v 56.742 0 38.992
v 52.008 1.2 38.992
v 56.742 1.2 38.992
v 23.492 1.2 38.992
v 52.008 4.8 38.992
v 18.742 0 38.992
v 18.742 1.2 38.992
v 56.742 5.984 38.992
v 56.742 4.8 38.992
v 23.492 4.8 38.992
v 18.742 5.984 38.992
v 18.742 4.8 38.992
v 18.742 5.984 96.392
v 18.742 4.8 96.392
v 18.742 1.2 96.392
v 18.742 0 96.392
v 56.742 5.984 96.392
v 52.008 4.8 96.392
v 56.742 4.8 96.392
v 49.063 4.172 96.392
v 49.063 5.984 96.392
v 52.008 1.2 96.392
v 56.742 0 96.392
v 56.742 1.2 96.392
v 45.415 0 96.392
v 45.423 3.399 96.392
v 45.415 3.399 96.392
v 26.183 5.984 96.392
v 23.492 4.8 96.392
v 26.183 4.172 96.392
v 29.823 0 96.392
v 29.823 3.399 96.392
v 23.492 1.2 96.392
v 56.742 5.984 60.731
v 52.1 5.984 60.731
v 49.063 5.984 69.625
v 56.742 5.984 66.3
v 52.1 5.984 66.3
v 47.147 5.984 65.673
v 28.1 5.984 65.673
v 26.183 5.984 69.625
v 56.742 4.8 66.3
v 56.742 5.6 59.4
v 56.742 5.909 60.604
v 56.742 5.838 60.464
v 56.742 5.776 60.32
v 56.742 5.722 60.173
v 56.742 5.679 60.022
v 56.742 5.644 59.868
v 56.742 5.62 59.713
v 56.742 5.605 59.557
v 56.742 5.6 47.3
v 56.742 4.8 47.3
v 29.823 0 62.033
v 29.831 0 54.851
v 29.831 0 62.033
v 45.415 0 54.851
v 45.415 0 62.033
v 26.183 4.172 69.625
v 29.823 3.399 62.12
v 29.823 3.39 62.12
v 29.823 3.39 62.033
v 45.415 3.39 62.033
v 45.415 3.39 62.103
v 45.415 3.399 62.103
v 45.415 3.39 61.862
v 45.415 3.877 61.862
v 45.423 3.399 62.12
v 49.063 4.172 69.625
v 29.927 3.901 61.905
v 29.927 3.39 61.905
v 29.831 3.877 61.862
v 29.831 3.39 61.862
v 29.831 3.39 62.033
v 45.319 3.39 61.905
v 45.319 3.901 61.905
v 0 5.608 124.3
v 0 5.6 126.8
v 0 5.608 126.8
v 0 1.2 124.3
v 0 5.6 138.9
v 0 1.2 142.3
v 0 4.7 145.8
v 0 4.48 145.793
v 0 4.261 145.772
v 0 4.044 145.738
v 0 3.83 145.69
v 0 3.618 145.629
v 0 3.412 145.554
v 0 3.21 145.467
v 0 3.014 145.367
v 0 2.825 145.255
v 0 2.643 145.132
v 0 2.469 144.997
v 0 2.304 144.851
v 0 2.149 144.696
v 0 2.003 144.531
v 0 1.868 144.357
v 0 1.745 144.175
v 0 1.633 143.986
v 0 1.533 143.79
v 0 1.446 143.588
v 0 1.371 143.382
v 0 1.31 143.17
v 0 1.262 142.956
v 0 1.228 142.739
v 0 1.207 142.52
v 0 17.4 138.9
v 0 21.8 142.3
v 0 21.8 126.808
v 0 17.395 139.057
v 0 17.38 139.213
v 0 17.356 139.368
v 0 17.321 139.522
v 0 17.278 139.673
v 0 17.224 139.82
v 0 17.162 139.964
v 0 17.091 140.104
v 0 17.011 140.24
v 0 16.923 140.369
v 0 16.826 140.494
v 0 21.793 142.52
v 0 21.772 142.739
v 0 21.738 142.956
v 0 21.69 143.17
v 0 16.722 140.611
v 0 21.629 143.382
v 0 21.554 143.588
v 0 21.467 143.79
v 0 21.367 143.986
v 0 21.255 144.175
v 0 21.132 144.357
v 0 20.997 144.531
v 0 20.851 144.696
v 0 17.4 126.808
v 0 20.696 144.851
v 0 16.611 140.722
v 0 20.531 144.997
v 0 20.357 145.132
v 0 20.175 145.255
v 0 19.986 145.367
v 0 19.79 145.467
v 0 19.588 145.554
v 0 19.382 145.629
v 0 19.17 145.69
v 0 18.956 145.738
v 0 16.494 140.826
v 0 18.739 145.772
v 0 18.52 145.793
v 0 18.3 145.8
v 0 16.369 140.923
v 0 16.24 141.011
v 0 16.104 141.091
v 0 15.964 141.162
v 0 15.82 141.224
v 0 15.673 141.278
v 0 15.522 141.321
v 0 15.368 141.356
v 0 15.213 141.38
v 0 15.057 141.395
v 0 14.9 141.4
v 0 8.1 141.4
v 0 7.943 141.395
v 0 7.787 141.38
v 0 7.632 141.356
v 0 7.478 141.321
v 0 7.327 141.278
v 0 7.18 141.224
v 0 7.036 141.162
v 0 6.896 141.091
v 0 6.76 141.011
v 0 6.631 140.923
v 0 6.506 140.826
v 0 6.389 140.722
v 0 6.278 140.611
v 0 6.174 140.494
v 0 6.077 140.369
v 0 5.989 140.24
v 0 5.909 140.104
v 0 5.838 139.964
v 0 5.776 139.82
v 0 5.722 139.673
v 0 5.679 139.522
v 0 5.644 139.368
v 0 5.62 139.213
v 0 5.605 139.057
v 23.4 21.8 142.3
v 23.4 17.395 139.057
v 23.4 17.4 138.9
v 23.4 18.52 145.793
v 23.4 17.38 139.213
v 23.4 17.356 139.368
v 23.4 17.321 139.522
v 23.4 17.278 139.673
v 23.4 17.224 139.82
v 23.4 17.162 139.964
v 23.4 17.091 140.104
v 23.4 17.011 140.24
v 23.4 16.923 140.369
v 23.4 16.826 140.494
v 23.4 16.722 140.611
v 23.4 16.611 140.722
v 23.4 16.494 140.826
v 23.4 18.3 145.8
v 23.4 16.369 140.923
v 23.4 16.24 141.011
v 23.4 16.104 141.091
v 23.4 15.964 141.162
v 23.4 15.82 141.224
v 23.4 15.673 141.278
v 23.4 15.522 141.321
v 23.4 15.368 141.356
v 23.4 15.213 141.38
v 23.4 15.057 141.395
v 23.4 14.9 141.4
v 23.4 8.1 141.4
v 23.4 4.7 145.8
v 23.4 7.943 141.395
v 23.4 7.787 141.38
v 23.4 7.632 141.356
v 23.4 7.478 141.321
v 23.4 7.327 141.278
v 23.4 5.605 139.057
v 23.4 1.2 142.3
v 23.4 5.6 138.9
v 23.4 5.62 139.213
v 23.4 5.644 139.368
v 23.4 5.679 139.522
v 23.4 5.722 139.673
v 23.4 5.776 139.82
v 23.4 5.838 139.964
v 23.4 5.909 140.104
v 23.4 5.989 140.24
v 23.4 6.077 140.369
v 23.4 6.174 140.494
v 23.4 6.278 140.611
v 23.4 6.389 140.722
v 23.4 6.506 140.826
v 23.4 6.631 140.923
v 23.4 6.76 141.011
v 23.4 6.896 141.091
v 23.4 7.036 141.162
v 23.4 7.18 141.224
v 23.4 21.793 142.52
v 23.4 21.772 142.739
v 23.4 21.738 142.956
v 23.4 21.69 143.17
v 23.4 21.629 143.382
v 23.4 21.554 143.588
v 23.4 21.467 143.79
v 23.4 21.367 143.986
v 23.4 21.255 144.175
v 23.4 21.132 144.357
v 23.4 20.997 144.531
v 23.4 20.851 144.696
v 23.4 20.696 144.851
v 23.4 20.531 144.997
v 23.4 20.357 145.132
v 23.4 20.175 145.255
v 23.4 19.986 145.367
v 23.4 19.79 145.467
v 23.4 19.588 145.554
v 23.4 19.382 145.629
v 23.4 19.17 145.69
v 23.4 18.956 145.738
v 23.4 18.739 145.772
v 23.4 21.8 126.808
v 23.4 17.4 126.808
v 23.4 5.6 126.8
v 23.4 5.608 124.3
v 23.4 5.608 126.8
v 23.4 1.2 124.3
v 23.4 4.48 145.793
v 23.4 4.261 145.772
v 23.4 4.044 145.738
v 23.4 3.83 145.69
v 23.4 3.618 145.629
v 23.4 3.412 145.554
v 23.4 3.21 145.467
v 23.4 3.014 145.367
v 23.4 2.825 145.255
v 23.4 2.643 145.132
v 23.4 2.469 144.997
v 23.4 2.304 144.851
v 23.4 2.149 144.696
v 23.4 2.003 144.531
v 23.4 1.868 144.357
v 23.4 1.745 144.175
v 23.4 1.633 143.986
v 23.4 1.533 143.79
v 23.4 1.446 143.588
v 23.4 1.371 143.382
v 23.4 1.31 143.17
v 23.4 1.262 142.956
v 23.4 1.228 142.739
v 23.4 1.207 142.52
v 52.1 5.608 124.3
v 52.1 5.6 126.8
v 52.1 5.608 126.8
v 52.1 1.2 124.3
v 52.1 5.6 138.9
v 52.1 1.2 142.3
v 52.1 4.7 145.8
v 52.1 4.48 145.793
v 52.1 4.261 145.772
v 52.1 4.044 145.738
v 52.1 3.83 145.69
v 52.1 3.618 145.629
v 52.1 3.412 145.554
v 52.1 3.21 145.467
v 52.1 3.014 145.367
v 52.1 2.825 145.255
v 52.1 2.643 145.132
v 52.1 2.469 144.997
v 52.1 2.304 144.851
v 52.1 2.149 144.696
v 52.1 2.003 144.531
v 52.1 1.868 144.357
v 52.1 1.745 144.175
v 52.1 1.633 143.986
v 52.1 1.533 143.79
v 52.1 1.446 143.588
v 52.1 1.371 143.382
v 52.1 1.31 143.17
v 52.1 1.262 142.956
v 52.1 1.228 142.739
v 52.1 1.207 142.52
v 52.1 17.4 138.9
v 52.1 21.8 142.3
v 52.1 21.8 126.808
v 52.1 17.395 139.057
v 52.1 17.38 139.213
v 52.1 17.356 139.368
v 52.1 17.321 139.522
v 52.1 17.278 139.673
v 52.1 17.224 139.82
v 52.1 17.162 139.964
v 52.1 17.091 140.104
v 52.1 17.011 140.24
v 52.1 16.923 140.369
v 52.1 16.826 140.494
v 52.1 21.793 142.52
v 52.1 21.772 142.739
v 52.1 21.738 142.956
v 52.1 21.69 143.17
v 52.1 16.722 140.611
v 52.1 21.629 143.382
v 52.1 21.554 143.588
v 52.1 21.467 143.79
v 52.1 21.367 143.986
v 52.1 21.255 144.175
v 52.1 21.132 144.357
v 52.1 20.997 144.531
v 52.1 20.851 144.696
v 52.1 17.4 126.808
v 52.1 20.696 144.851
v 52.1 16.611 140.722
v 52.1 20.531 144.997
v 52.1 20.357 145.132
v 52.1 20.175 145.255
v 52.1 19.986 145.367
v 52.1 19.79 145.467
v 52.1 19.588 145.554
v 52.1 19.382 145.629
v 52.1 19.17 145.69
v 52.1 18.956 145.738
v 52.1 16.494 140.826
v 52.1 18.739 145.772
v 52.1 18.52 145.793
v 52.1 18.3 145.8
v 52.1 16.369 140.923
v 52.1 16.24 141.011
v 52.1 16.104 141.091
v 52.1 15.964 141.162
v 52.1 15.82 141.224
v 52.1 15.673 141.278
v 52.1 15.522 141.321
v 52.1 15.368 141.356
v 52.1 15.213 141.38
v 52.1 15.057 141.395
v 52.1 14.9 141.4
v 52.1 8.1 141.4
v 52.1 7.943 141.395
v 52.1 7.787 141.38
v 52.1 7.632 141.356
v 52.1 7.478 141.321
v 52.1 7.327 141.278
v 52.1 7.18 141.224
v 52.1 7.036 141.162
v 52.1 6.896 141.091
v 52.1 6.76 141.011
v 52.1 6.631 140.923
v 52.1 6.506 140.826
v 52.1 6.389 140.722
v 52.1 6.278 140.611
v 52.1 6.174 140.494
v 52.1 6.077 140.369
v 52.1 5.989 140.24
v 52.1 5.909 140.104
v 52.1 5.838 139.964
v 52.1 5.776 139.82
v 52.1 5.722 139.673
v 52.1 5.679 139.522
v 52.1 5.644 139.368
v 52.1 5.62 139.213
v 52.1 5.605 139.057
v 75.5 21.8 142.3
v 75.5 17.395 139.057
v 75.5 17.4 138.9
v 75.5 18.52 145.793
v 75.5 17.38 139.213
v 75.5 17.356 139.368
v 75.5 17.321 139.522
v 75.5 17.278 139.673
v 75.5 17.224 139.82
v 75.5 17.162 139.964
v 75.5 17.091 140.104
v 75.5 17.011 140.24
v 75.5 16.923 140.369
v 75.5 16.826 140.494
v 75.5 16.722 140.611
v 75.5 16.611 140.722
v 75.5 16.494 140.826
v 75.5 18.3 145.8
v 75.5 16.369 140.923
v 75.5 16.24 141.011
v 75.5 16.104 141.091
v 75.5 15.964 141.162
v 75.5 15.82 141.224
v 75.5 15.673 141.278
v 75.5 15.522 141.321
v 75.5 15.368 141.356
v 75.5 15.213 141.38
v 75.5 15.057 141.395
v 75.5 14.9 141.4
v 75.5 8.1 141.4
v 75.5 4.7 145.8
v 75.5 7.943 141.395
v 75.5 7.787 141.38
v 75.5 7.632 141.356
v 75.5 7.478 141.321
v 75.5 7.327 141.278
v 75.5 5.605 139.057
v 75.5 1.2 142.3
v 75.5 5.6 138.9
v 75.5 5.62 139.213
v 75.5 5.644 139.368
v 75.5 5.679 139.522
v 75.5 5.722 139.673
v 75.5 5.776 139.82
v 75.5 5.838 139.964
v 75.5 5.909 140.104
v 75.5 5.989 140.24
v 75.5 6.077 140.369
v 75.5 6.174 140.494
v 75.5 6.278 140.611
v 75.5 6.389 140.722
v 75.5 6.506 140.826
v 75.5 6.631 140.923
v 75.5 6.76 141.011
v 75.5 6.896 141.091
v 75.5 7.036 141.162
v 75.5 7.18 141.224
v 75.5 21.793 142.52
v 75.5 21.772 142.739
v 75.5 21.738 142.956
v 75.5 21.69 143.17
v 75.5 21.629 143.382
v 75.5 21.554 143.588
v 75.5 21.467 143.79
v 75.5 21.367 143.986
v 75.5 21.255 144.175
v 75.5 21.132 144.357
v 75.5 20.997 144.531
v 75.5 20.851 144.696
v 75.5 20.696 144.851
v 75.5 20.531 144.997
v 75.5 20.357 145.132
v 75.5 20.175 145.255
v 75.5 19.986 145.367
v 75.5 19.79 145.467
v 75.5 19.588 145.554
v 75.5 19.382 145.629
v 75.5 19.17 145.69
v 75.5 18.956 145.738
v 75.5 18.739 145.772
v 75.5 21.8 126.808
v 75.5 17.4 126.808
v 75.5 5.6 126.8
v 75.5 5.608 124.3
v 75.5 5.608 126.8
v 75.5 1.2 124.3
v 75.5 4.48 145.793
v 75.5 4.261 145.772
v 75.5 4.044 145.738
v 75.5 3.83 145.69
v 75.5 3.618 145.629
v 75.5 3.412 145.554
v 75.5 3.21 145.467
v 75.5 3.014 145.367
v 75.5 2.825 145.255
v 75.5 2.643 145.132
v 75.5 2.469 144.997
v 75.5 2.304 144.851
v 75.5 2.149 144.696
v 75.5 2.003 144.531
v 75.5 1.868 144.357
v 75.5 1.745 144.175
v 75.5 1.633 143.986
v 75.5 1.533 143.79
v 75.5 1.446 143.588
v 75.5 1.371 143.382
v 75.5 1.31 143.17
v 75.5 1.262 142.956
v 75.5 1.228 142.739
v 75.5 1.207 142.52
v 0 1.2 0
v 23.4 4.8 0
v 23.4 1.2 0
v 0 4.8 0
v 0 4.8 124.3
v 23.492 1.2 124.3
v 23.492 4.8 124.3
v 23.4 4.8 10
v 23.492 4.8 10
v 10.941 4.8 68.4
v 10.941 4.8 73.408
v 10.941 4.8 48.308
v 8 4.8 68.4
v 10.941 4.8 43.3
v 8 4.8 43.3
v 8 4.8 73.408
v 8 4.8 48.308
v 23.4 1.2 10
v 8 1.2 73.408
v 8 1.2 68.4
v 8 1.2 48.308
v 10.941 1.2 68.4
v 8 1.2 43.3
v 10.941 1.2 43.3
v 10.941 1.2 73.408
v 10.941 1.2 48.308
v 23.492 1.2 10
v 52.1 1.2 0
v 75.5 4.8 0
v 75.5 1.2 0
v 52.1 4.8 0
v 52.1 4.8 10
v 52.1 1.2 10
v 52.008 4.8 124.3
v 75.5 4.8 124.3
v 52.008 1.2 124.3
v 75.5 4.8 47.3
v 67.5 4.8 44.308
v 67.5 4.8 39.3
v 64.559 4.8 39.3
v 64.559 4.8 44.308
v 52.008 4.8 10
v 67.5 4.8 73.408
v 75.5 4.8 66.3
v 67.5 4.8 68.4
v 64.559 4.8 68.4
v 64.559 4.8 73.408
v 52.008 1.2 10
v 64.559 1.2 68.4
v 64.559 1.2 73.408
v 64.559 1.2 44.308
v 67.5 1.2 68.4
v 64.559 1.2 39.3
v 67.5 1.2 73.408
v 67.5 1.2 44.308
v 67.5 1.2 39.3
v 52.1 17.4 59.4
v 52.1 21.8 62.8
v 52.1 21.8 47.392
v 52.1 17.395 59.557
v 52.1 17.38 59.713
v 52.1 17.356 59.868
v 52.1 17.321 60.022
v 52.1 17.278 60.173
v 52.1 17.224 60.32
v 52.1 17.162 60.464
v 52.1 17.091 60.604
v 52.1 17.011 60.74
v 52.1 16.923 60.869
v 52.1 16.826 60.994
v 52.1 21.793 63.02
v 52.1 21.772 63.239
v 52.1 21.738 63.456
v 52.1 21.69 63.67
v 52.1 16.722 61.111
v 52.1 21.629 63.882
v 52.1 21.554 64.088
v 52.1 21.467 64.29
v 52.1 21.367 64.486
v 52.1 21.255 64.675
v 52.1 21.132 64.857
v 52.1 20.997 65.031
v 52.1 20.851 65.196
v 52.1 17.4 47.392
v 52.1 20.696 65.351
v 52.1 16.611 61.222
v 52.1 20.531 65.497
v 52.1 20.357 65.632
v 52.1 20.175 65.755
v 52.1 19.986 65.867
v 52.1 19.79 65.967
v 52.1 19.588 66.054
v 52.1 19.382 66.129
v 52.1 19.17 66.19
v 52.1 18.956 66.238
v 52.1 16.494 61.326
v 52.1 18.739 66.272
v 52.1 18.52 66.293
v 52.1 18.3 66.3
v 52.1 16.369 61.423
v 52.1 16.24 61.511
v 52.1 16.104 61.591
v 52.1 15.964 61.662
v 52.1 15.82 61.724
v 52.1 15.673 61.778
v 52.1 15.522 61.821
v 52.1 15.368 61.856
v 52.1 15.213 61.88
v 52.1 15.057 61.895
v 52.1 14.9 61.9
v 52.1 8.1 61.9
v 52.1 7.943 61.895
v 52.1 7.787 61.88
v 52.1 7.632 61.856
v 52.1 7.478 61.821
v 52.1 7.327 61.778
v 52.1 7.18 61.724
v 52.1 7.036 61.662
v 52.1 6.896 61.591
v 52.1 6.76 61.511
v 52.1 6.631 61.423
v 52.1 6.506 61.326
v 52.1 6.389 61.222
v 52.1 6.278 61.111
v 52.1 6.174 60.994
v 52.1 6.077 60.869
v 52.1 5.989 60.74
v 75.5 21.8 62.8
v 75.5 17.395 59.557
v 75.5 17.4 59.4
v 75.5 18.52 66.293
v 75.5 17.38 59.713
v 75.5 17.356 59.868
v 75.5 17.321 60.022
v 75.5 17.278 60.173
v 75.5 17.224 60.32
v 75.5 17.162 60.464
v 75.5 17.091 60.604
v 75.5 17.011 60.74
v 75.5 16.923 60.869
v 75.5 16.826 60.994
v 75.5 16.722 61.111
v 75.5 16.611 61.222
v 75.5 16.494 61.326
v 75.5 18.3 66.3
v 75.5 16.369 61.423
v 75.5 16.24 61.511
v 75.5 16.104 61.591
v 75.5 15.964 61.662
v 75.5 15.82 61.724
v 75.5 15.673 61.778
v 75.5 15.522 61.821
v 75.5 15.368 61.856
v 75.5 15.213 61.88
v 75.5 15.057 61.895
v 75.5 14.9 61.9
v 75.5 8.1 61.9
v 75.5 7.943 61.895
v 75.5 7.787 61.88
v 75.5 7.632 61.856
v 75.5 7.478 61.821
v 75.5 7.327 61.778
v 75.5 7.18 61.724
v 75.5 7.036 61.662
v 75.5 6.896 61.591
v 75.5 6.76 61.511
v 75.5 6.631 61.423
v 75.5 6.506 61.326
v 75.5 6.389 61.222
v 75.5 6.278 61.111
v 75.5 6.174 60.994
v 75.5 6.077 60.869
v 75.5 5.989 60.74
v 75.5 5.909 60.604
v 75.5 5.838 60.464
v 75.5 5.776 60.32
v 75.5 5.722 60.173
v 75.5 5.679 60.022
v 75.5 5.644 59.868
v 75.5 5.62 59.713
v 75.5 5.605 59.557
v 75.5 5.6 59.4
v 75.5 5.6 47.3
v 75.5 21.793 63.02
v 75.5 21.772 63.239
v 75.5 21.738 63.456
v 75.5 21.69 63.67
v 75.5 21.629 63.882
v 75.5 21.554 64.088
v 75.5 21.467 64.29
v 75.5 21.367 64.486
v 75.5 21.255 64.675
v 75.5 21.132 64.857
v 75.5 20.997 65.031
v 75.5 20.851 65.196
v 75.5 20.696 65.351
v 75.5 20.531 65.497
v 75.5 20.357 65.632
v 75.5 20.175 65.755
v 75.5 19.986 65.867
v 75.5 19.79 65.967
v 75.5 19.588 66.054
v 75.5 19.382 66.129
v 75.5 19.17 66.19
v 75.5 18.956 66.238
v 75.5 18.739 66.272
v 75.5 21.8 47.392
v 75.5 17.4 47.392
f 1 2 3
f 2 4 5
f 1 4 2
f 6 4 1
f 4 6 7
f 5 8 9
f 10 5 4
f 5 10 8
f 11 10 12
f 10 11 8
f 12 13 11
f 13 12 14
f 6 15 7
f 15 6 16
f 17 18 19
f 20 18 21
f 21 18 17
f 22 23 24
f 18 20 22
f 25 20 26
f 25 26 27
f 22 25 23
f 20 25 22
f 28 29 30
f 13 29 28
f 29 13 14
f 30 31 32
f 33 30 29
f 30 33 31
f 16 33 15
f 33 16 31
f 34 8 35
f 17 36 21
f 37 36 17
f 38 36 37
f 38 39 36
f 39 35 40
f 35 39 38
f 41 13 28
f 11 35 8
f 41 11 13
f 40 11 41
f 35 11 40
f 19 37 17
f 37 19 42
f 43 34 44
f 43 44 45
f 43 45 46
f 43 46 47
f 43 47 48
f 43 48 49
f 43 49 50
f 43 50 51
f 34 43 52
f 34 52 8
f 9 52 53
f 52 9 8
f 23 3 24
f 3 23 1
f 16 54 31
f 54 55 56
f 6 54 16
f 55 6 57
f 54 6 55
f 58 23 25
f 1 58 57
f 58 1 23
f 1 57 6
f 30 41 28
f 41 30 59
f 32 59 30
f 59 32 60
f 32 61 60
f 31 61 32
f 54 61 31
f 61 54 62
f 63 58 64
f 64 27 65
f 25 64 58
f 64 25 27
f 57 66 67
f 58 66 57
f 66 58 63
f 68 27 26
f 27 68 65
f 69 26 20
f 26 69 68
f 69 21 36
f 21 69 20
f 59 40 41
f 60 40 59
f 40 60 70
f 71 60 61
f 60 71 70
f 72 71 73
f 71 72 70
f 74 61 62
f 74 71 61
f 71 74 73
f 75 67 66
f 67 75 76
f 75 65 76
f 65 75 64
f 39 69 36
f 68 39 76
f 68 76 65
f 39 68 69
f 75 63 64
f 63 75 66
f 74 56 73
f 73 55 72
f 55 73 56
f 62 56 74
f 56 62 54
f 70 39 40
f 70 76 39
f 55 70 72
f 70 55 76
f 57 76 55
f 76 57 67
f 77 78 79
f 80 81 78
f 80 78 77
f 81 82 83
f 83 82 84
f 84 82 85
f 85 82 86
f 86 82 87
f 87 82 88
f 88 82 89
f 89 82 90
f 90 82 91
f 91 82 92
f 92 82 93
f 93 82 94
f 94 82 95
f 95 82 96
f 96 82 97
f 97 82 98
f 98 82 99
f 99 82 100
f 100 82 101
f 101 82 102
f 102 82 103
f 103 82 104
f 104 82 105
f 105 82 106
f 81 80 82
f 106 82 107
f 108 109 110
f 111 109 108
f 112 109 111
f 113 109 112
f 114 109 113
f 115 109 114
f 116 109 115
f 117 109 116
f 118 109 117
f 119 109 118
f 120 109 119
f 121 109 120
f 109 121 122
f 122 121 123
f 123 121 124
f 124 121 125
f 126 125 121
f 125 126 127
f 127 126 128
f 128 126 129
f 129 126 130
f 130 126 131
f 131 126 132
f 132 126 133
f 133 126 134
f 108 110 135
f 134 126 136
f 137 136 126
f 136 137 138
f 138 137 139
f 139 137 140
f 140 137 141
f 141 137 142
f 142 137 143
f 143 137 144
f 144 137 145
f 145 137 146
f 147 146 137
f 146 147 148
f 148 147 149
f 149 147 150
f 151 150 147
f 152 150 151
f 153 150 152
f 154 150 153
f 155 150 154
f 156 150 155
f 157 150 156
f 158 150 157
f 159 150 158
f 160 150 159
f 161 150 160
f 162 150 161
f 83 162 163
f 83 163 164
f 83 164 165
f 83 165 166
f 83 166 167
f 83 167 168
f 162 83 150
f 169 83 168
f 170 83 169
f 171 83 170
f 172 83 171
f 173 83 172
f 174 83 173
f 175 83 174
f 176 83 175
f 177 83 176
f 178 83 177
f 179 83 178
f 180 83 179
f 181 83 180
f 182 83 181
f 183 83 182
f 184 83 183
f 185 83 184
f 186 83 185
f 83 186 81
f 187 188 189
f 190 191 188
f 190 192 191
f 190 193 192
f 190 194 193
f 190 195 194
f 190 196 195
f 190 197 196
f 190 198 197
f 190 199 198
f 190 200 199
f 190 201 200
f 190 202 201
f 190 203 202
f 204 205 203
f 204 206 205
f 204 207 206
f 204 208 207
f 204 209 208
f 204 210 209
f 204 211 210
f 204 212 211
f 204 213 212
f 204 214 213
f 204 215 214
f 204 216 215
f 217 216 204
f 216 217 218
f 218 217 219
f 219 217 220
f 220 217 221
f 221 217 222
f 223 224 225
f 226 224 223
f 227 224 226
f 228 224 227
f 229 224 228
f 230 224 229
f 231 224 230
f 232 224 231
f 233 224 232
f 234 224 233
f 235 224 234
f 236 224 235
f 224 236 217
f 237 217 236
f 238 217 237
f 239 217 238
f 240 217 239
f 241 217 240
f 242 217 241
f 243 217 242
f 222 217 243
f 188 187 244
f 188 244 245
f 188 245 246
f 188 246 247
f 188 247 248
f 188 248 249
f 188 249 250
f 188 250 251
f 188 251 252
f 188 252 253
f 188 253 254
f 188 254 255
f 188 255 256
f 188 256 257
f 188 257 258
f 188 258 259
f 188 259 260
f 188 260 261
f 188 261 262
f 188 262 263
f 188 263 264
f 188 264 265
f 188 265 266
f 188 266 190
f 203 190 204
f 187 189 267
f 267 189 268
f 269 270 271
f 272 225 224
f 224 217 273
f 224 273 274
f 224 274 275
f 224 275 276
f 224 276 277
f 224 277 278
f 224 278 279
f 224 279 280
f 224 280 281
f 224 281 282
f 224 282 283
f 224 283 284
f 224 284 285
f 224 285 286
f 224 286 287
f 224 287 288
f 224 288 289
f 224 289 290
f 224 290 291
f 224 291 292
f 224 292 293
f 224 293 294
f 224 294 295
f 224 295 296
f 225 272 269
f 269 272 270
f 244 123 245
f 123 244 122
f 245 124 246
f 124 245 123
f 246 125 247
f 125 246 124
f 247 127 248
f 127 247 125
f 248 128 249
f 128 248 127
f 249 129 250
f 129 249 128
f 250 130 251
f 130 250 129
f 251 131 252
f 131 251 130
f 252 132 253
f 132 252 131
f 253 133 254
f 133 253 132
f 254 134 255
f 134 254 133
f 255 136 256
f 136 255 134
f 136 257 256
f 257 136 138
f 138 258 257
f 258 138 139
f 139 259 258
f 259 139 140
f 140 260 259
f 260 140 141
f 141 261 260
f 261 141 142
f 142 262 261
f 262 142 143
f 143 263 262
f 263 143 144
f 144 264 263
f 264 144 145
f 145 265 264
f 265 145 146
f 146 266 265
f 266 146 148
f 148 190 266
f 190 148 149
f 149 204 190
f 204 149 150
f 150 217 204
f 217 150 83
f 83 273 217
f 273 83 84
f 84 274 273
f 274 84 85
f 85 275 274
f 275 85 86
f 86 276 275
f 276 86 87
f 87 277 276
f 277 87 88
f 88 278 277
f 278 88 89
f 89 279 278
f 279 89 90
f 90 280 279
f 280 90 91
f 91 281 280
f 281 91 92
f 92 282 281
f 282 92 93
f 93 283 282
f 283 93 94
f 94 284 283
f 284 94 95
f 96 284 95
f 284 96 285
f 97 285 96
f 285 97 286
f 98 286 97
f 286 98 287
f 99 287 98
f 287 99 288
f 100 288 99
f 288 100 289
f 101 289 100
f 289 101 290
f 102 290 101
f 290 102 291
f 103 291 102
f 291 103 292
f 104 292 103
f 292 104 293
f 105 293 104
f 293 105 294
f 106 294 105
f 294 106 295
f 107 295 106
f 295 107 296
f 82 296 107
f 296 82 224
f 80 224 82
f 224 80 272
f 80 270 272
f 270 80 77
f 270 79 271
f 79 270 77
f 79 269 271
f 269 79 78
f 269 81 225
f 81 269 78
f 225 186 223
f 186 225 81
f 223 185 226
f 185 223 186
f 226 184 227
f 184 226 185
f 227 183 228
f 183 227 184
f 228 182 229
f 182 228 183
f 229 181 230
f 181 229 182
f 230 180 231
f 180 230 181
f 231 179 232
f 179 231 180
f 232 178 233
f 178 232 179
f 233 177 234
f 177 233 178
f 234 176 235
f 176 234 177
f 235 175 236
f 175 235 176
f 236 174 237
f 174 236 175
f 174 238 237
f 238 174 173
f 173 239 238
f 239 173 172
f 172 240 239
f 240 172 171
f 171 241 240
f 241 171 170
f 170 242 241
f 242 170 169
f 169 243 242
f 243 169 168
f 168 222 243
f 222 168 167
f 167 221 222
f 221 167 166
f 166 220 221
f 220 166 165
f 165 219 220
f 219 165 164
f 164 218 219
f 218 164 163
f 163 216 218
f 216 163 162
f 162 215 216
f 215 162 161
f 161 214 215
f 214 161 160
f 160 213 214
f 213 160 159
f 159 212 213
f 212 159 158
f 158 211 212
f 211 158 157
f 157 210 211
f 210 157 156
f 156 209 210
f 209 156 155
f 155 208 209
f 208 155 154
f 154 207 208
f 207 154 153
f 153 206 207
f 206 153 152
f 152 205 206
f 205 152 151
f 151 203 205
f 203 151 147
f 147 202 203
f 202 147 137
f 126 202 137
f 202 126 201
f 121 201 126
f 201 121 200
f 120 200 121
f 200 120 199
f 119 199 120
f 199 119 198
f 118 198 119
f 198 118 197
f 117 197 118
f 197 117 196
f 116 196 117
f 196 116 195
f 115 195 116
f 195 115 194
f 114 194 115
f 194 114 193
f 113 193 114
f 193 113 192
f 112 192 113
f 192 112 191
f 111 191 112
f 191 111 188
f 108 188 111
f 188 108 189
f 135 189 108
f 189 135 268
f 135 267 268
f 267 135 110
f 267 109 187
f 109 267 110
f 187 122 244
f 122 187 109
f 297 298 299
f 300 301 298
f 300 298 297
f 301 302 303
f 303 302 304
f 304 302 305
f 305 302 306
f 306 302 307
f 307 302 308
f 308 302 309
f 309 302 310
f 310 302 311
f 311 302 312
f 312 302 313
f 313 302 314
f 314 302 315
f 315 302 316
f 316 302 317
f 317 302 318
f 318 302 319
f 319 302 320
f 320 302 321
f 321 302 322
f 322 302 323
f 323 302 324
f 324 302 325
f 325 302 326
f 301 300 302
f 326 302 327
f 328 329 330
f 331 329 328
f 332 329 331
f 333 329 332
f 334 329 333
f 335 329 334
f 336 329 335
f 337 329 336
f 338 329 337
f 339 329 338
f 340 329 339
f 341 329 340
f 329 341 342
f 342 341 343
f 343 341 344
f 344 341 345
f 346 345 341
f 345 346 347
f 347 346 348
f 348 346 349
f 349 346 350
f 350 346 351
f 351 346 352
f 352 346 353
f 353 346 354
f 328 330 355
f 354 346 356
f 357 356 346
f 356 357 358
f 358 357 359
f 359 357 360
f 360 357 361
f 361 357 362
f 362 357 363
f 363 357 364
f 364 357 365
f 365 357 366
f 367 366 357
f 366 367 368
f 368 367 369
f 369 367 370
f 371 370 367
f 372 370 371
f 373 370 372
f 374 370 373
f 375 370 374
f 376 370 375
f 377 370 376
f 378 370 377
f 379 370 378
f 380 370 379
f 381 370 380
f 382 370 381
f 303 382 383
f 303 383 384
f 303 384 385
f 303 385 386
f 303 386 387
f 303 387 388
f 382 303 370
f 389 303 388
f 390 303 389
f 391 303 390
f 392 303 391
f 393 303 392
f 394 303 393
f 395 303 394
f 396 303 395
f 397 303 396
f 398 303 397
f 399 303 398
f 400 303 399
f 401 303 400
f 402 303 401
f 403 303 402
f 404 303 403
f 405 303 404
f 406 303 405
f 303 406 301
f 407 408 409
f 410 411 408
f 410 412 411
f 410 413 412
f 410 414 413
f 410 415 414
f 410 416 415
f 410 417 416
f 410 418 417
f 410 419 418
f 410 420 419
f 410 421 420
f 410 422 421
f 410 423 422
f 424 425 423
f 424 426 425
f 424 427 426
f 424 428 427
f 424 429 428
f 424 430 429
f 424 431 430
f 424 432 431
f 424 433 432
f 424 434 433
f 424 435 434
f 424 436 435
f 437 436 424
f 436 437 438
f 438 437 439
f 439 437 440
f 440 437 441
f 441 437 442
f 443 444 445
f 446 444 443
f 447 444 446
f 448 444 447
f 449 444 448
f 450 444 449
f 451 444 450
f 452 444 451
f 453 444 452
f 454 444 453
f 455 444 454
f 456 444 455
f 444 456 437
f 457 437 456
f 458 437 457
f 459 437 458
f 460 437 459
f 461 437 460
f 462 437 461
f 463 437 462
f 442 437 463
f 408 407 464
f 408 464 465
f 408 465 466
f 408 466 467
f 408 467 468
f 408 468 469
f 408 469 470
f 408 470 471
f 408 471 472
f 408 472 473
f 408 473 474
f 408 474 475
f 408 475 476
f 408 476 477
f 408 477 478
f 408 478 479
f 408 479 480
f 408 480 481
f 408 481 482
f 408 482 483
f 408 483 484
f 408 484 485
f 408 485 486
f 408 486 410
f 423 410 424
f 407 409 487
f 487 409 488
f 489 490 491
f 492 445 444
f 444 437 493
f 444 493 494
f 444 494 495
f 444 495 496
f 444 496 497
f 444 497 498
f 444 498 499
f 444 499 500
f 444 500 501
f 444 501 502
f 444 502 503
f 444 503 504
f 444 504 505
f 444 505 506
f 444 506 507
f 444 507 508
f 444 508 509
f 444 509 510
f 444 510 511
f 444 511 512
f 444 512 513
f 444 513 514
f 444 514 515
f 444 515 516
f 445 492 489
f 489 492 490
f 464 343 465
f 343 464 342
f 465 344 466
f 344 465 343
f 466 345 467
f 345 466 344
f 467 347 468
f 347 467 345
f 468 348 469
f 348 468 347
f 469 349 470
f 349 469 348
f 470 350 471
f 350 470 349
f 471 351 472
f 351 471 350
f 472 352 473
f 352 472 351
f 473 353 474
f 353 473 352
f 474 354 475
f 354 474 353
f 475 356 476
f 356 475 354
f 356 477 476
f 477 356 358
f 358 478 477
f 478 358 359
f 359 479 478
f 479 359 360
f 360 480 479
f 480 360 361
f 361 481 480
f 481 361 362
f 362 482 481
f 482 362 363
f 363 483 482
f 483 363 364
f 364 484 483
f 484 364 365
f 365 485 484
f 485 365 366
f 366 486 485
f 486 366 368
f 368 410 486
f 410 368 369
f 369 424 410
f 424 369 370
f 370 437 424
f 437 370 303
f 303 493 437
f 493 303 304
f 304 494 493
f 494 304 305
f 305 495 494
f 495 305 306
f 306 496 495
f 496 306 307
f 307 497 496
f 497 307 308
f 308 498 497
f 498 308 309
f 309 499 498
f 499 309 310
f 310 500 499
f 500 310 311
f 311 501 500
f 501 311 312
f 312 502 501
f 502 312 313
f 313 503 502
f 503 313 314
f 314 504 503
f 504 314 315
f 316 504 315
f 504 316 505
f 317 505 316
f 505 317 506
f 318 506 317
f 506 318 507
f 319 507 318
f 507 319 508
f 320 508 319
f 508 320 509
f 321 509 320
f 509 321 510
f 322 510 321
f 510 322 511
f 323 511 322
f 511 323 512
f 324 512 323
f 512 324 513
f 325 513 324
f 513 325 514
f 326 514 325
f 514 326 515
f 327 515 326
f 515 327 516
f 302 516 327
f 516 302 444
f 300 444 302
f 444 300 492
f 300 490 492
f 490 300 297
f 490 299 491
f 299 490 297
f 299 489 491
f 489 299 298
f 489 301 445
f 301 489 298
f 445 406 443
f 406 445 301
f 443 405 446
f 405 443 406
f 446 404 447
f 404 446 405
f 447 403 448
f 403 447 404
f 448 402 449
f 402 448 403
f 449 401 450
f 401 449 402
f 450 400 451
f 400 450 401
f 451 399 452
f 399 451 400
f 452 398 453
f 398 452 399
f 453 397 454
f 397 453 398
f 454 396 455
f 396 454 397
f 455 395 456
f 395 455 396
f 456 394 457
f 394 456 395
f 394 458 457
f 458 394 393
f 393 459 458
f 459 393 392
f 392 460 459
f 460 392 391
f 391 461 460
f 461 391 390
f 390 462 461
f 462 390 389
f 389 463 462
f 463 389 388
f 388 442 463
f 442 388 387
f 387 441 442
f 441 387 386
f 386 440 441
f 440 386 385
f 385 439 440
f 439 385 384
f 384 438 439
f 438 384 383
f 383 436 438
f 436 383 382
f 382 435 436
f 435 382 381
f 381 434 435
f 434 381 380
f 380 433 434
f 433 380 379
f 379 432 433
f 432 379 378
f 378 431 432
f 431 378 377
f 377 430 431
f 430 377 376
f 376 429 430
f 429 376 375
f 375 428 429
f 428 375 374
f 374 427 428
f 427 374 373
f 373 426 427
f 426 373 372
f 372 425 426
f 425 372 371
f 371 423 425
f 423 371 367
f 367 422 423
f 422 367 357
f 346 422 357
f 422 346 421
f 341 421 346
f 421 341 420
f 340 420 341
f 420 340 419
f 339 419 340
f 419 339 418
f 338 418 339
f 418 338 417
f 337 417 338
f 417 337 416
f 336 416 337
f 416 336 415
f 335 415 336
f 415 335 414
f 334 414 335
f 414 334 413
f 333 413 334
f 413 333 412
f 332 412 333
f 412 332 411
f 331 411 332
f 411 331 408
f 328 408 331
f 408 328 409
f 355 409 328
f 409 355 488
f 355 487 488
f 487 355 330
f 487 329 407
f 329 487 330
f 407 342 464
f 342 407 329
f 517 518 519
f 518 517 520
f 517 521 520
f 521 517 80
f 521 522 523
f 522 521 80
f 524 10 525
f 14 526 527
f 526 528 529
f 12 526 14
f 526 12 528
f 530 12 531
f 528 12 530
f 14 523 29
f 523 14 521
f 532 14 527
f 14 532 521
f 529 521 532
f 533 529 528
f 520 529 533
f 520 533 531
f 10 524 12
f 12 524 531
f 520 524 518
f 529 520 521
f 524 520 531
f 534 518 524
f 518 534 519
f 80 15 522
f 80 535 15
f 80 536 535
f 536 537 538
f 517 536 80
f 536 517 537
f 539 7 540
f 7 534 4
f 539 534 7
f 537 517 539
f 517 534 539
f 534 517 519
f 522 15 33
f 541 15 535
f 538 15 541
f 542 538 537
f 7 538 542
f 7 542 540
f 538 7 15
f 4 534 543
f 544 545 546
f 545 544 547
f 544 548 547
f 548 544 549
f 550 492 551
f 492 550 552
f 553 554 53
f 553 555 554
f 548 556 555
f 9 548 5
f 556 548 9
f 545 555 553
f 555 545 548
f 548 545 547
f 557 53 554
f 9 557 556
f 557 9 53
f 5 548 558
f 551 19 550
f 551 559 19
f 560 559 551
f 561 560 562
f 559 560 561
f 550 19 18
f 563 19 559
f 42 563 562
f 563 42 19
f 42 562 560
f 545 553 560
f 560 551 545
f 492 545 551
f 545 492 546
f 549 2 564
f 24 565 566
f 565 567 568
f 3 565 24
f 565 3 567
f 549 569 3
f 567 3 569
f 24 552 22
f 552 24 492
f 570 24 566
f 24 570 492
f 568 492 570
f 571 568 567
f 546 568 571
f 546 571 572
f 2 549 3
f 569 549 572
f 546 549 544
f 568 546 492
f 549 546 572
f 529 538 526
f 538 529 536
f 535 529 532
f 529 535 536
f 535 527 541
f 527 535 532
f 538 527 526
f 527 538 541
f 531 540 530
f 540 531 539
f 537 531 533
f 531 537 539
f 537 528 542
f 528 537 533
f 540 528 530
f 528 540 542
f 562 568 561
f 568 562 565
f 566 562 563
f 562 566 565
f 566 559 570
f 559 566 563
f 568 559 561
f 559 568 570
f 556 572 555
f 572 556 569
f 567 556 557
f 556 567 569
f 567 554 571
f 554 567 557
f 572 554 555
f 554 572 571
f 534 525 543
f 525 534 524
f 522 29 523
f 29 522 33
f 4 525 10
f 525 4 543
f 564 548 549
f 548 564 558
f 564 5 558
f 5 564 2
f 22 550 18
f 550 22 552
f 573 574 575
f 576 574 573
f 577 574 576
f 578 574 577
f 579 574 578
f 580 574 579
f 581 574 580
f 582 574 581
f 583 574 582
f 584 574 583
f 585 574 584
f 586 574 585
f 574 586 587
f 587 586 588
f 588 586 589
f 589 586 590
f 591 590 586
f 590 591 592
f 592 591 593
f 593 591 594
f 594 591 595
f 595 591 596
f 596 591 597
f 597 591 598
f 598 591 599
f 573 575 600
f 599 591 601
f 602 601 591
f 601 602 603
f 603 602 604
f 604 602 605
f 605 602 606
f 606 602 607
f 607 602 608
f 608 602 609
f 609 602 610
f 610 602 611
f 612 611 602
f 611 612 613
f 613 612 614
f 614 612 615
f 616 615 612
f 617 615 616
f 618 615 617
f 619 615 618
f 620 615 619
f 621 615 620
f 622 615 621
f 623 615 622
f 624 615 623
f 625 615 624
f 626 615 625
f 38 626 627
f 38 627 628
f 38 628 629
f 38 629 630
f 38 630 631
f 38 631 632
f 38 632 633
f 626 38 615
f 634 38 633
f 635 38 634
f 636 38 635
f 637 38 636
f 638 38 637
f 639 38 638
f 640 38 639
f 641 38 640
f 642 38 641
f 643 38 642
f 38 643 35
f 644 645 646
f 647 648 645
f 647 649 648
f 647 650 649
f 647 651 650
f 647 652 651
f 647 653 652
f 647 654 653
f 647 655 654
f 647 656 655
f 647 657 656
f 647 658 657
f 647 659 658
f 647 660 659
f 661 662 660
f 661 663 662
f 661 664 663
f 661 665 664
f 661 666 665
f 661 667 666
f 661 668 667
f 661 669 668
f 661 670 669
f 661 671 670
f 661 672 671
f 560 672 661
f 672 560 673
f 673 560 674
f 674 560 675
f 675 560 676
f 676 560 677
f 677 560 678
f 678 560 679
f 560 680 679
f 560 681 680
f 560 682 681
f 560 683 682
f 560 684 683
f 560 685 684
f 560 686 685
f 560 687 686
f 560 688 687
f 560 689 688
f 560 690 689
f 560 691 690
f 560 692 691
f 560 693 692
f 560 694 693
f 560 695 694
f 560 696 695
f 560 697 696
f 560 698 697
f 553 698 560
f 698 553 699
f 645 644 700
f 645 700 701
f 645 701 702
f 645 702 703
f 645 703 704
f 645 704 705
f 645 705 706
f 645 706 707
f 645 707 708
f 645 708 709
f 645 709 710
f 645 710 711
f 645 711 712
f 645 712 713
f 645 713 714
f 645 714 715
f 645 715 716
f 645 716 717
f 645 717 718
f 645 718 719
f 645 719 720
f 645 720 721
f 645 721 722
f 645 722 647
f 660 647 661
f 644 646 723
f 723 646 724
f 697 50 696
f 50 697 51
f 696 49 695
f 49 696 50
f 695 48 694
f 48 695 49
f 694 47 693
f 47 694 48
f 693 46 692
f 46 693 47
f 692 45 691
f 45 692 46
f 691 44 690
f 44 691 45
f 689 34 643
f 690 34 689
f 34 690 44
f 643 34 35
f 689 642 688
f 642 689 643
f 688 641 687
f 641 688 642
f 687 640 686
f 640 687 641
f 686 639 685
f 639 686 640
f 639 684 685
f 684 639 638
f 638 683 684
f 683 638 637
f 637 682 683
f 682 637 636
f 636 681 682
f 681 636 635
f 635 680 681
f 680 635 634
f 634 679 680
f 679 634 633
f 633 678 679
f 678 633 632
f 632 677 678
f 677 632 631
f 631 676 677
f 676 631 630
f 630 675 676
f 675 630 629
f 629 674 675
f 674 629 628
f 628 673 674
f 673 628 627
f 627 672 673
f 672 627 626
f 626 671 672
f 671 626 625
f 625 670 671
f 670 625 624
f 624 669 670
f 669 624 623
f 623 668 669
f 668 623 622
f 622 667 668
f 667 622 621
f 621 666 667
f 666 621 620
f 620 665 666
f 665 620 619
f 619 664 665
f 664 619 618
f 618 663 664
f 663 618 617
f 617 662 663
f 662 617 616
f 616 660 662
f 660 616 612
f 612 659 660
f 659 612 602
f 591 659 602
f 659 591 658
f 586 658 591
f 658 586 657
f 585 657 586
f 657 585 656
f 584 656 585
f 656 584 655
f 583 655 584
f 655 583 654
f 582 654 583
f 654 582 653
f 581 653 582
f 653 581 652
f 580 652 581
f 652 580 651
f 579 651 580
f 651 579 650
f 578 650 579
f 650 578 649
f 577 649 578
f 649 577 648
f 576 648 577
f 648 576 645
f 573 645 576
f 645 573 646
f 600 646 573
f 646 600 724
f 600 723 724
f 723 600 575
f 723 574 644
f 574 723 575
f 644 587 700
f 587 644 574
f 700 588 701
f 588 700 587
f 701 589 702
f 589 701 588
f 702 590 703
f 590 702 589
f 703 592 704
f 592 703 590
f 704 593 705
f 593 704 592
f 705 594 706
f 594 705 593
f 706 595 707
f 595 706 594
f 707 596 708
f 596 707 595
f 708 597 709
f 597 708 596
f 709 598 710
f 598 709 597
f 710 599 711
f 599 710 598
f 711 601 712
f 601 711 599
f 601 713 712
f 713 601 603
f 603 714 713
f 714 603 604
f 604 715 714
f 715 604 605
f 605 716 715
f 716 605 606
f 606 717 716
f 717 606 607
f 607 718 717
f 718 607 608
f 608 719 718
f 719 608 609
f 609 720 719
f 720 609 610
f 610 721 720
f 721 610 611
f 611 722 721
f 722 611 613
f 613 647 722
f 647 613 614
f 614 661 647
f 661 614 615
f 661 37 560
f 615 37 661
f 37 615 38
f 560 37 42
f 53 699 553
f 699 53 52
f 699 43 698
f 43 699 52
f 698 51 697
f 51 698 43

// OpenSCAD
// file: ../libraries/local-misc/wedge.scad
//Title: Wedge Module
//Author: Alex English - ProtoParadigm
//Date: 1/4/2013
//License: Creative Commons - Share Alike - Attribution

//Usage: Include in your other .scad projects and call wedge with arguments for the height of the wedge, the radius of the wedge, and the angle of the wedge in degrees.  The resulting wedge will be placed with the point at the origin, extending into the z axis, with the angle starting at the x axis and extending counter-clockwise as per the right-hand rule.

//Updated: 1/12/2013 - Increased dimensions of wedge to be revoved when angle is more than 180 as per suggestion from kitwallace.

module wedge_180(h, r, d)
{
	rotate(d) difference()
	{
		rotate(180-d) difference()
		{
			cylinder(h = h, r = r);
			translate([-(r+1), 0, -1]) cube([r*2+2, r+1, h+2]);
		}
		translate([-(r+1), 0, -1]) cube([r*2+2, r+1, h+2]);
	}
}

module wedge(h, r, d)
{
	if(d <= 180)
		wedge_180(h, r, d);
	else
		rotate(d) difference()
		{
			cylinder(h = h, r = r);
			translate([0, 0, -1]) wedge_180(h+2, r+1, 360-d);
		}
}

//Example: wedge(10, 20, 145); //would create a wedge 10 high, with a radius of 20, and an angle of 33 degrees.
// file: ../libraries/MCAD/units.scad
/*
 * Basic units.
 * 
 * Originally by Hans Häggström, 2010.
 * Dual licenced under Creative Commons Attribution-Share Alike 3.0 and LGPL2 or later
 */


mm = 1;
cm = 10 * mm;
dm = 100 * mm;
m = 1000 * mm;

inch = 25.4 * mm;

X = [1, 0, 0];
Y = [0, 1, 0];
Z = [0, 0, 1];

M3 = 3*mm;
M4 = 4*mm;
M5 = 5*mm;
M6 = 6*mm;
M8 = 8*mm;


// When a small distance is needed to overlap shapes for boolean cutting, etc.
epsilon = 0.01*mm;
// file: ../libraries/MCAD/2Dshapes.scad
/*
 *  OpenSCAD 2D Shapes Library (www.openscad.org)
 *  Copyright (C) 2012 Peter Uithoven
 *
 *  License: LGPL 2.1 or later

 *  2D Shapes
 *  ngon(sides, radius, center=false);
 *  complexRoundSquare(size,rads1=[0,0], rads2=[0,0], rads3=[0,0], rads4=[0,0], center=true)
 *  roundedSquare(pos=[10,10],r=2)
 *  ellipsePart(width,height,numQuarters)
 *  donutSlice(innerSize,outerSize, start_angle, end_angle)
 *  pieSlice(size, start_angle, end_angle) //size in radius(es)
 *  ellipse(width, height) {
*/

// Examples - (layouts.scad is required for examples)
// example2DShapes(); use <layouts.scad>;

module example2DShapes() {
    grid(105,105,true,4)
    {
        // ellipse
        ellipse(50,75);

        // part of ellipse (a number of quarters)
        ellipsePart(50,75,3);
        ellipsePart(50,75,2);
        ellipsePart(50,75,1);

        // complexRoundSquare examples
        complexRoundSquare([75,100],[20,10],[20,10],[20,10],[20,10]);
        complexRoundSquare([75,100],[0,0],[0,0],[30,50],[20,10]);
        complexRoundSquare([50,50],[10,20],[10,20],[10,20],[10,20],false);
        complexRoundSquare([100,100]);
        complexRoundSquare([100,100],rads1=[20,20],rads3=[20,20]);

        // pie slice
        pieSlice(50,0,10);
        pieSlice(50,45,190);
        pieSlice([50,20],180,270);

        // donut slice
        donutSlice(20,50,0,350);
        donutSlice(30,50,190,270);
        donutSlice([40,22],[50,30],180,270);
        donutSlice([50,20],50,180,270);
        donutSlice([20,30],[50,40],0,270);
    }
}
// end examples ----------------------

module complexRoundSquare(
    size, // Size
    rads1=[0,0], // Top left radius
    rads2=[0,0], // Top right radius
    rads3=[0,0], // Bottom right radius
    rads4=[0,0], // Bottom left radius
    center=true // center
) {
    width = size[0];
    height = size[1];
    // %square(size=[width, height],center=true);
    x1 = 0-width/2+rads1[0];
    y1 = 0-height/2+rads1[1];
    x2 = width/2-rads2[0];
    y2 = 0-height/2+rads2[1];
    x3 = width/2-rads3[0];
    y3 = height/2-rads3[1];
    x4 = 0-width/2+rads4[0];
    y4 = height/2-rads4[1];

    scs = 0.1; // straight corner size

    x = (center)? 0: width/2;
    y = (center)? 0: height/2;

    translate([x,y,0])
    hull()
    {
        // top left
        if(rads1[0] > 0 && rads1[1] > 0)
            translate([x1,y1])
            mirror([1,0])
            ellipsePart(rads1[0]*2,rads1[1]*2,1);
        else
            translate([x1,y1])
            square(size=[scs, scs]);

        // top right
        if(rads2[0] > 0 && rads2[1] > 0)
            translate([x2,y2])
            ellipsePart(rads2[0]*2,rads2[1]*2,1);
        else
            translate([width/2-scs,0-height/2])
            square(size=[scs, scs]);

        // bottom right
        if(rads3[0] > 0 && rads3[1] > 0)
            translate([x3,y3])
            mirror([0,1])
            ellipsePart(rads3[0]*2,rads3[1]*2,1);
        else
            translate([width/2-scs,height/2-scs])
            square(size=[scs, scs]);

        // bottom left
        if(rads4[0] > 0 && rads4[1] > 0)
            translate([x4,y4])
            rotate([0,0,-180])
            ellipsePart(rads4[0]*2,rads4[1]*2,1);
        else
            #translate([x4,height/2-scs])
            square(size=[scs, scs]);
    }
}

module roundedSquare(pos=[10,10],r=2) {
    minkowski()
    {
        square([pos[0]-r*2,pos[1]-r*2],center=true);


        circle(r=r);
    }
}

// round shapes
// The orientation might change with the implementation of circle...
module ngon(sides, radius, center=false) {
    rotate([0, 0, 360/sides/2])
    circle(r=radius, $fn=sides, center=center);
}

module ellipsePart(width,height,numQuarters) {
    o = 1; //slight overlap to fix a bug
    difference()
    {
        ellipse(width,height);

        if(numQuarters <= 3)
            translate([0-width/2-o,0-height/2-o,0])
            square([width/2+o,height/2+o]);
        if(numQuarters <= 2)
            translate([0-width/2-o,-o,0])
            square([width/2+o,height/2+o*2]);
        if(numQuarters < 2)
            translate([-o,0,0])
            square([width/2+o*2,height/2+o]);
    }
}

module donutSlice(innerSize,outerSize, start_angle, end_angle) {
    difference()
    {
        pieSlice(outerSize, start_angle, end_angle);

        if(is_list(innerSize) && len(innerSize) > 1)
             ellipse(innerSize[0]*2,innerSize[1]*2);
        else
            circle(innerSize);
    }
}

module pieSlice(size, start_angle, end_angle) { //size in radius(es)
    rx = (is_list(size) && len(size) > 1)? size[0] : size;
    ry = (is_list(size) && len(size) > 1)? size[1] : size;
    trx = rx* sqrt(2) + 1;
    try = ry* sqrt(2) + 1;
    a0 = (4 * start_angle + 0 * end_angle) / 4;
    a1 = (3 * start_angle + 1 * end_angle) / 4;
    a2 = (2 * start_angle + 2 * end_angle) / 4;
    a3 = (1 * start_angle + 3 * end_angle) / 4;
    a4 = (0 * start_angle + 4 * end_angle) / 4;

    if(end_angle > start_angle)
        intersection() {
        if(is_list(size) && len(size) > 1)
            ellipse(rx*2,ry*2);
        else
            circle(rx);
        polygon([
            [0,0],
            [trx * cos(a0), try * sin(a0)],
            [trx * cos(a1), try * sin(a1)],
            [trx * cos(a2), try * sin(a2)],
            [trx * cos(a3), try * sin(a3)],
            [trx * cos(a4), try * sin(a4)],
            [0,0]
        ]);
    }
}

module ellipse(width, height) {
    scale([1, height/width, 1])
    circle(r=width/2);
}
// main file
////////////////////////////////////////////////////////////////////////
//
// Author:
//
//   David Crook <idcrook@users.noreply.github.com>
//
// Description:
//
//
// Revisions/Notes:
//
//   2023-Jan-19: Update starting from previous design
//
// TODO:
//
//   - use external function for insertion slot (sleeve mount insert)
//
////////////////////////////////////////////////////////////////////////


use <../libraries/MCAD/2Dshapes.scad>
include <../libraries/MCAD/units.scad>
use <../libraries/local-misc/wedge.scad>


// Width across mount
Width_Of_Mount = 75.5;

// Vertical spacing between crosss bars in basket
Vertical_Spacing_Hooks = 81.0;

// from start of bottom to start of hook structure (top)
Height_Of_Mount = 124.3;

// How far from top of block to shift down insert
mount_insert_shift = 27.9;

module __Customizer_Limit__ () {}

e = 1/128; // small number

tolerance = 0.5;

module sleeveMountInsert (width, thickness, height, shouldTweak) {

  insertTailWidth = width;
  insertThickness = thickness;
  insertChopThickness = (1/2)*thickness;
  insertFullHeight = height;

  insertPartialHeight = 25.0 ;
  insertSlantedHeight = insertFullHeight - insertPartialHeight;
  insertSlantAngle = 62;
  insertSlantAngle2 = 65;

  insertChopThickness_x = shouldTweak ? insertChopThickness + tolerance : insertChopThickness;
  insertChopThickness_y = shouldTweak ? insertChopThickness + tolerance : insertChopThickness;
  r1 = shouldTweak ? 0 : 0;
  // empirically determined value when shouldTweak == false
  start_of_leading_edge = (1/2) * insertSlantedHeight * sin (insertSlantAngle);
  z_cover_leading_edge = start_of_leading_edge + 0.12 ;
  y_rot2_leading_edge = - 180 + insertSlantAngle2;

  rotateAngle = 12;

  echo("insertChopThickness_x:", insertChopThickness_x);
  echo("insertChopThickness_y:", insertChopThickness_y);

  difference() {
    linear_extrude(height = insertFullHeight, center = false, convexity = 10)
      difference() {
      complexRoundSquare([insertTailWidth, insertThickness],
                         [0,0], [0,0], [0,0], [0,0],
                         center = false);

      // vertical side nearest attach surface
      translate([-e, -e, 0])
        complexRoundSquare([insertChopThickness_x + e, insertChopThickness_y + e],
                           [0,0], [0,0], [r1,r1], [0,0],
                           center = false);

      // other vertical side nearest attach surface
      translate([insertTailWidth - insertChopThickness_x - e, -e, 0])
        complexRoundSquare([insertChopThickness_x + e, insertChopThickness_y + e],
                           [0,0], [0,0], [0,0], [r1,r1],
                           center = false);

      // this carves a small slant on the side rails
      if (shouldTweak) {
        translate([insertChopThickness_x, insertChopThickness_y, 0])
          rotate([0,0,180-rotateAngle])
          complexRoundSquare([insertChopThickness_x+2, insertChopThickness_y/2],
                             [0,0], [0,0], [0,0], [0,0],
                             center = false);
        translate([insertTailWidth - insertChopThickness_x, 0, 0])
          translate([0, insertChopThickness_y,0])
          rotate([0,0,270+rotateAngle])
          complexRoundSquare([insertChopThickness_x/2, insertChopThickness_y+2],
                             [0,0], [0,0], [0,0], [0,0],
                             center = false);
      }
    }
    // leading edges of upper wings of slot
    translate([insertChopThickness_x + 0*e + 0.1,
               insertChopThickness_y - 1*e ,
               start_of_leading_edge - 1*e - 0.0])
      rotate([0, y_rot2_leading_edge, 0])
      cube(10 + 2);
    translate([insertTailWidth - insertChopThickness_x - 0*e - 0.1,
               insertChopThickness_y - 1*e ,
               start_of_leading_edge - 1*e - 0.0])
      rotate([0, 90 - insertSlantAngle2 ,0])
      cube(10 + 2);
    translate([-e, -e, 0])
      mirror([0,0,0])
      rotate([0,0,0])
      cube([insertChopThickness_x + 2*e,insertChopThickness_y+2, z_cover_leading_edge]);
    translate([insertTailWidth + e, -e , 0])
      mirror([1,0,0])
      rotate([0,0,0])
      cube([insertChopThickness_x + 2*e,insertChopThickness_y+2, z_cover_leading_edge]);

    // carve leading edge main slope/angle
    translate([-1*e, -1*e, -1*e])
      rotate([-(90-insertSlantAngle),0,0])
      cube([insertTailWidth+2*e, insertFullHeight/2+2*e, insertFullHeight/2+2*e]);
  }
}


module basketMount(mount_insert_w, mount_insert_thickness, mount_insert_h, fitBetter) {

  // there are four basic design features of the bike basket mount:
  //
  //  1. main "block"
  //
  //  2. hooks for the basket frame cross-bars
  //
  //  3. zip-tie slots to secure to basket vertical bars
  //
  //  4. mount insert for sleeve (that holds a powerbank, etc.)
  //
  block_x = Width_Of_Mount;        // width of mount
  block_y = mount_insert_thickness -2*e; // insert depth/thickness
  plate_thickness = 3.6;
  block_z = Height_Of_Mount ; // length of mount along frame

  assert (mount_insert_thickness >= plate_thickness, "Plate too thick; will interfere with mount");

  mountInsert_w = mount_insert_w;
  mountInsert_h = mount_insert_thickness;

  enlargePunchScale = 1.04;

  surround_w = mount_insert_w + 16;
  surround_h = mount_insert_h + 15.4;

  remaining_w = block_x - surround_w;
  remaining_h = block_z - surround_h;
  include_bottom_plate = !true;

  t_surround_x = (1/2) * (block_x - surround_w);
  t_surround_z = (block_z - surround_h) - mount_insert_shift;

  //  4. mount insert piece for inserting phone carrier
  translate_y = (mountInsert_h - enlargePunchScale*mountInsert_h + 2*e);
  fudge_x = -0.62;
  translate_x = (1/2) * (block_x - (mountInsert_w * enlargePunchScale)) + fudge_x;
  mountInsert_position = (enlargePunchScale - 1) * (translate_x) * 1/2;
  translate_z = block_z - mount_insert_h - mount_insert_shift ;

  difference() {

    // main "Block" surround insert groove
    union() {
        difference () {
          linear_extrude(height = block_z, center = false, convexity = 10)
            complexRoundSquare([block_x, block_y],
                               [0,0], [0,0], [0,0], [0,0],
                               center = false);
          translate([-e, -e, -e])
             difference () {
            linear_extrude(height = block_z + 2*e, center = false, convexity = 10)
              complexRoundSquare([block_x + 2*e, mountInsert_h +2*e],
                                 [0,0], [0,0], [0,0], [0,0], center = false);

            translate ([t_surround_x, -e, t_surround_z])
              linear_extrude(height = surround_h, center = false, convexity = 10)
              complexRoundSquare([surround_w, mountInsert_h],
                                 [0,0], [0,0], [0,0], [0,0], center = false);
          }
        }
    }

    scale([enlargePunchScale, enlargePunchScale, 1])
      translate([-mountInsert_position +  translate_x,
                 translate_y ,
                 translate_z + e])
      translate([0, -e, 0])
      rotate([0, 0, 0])
      sleeveMountInsert(mount_insert_w, mount_insert_thickness, mount_insert_h, fitBetter);
  }

  // Hooks and plate
  bar_diameter = 10.6;
  hookWidth = 23.4;
  hookThickness = plate_thickness + 0.8;
  overhangPlusExtend = 6.5;
  hookOverhang = 4.0;
  hookExtend = overhangPlusExtend - hookOverhang;
  innerPadding = 0.6;

  plate_width_half = (1/2) * remaining_w - hookWidth + 2*e;
  plate_start_height = 10;
  bottom_height = t_surround_z - plate_start_height;

  hookOverhang_mid = hookOverhang;
  hookExtend_mid = 0;

  // Want hooks to be spaced at bar spacing
  // Calculated spacing between bars minus top hook extra minus mid hook extra
  mid_hook_z = block_z - Vertical_Spacing_Hooks +  hookExtend_mid + hookOverhang_mid;

  pulltie_inset = 8.0;
  pulltie_hole_size = 5;
  pulltie_hole_width = pulltie_hole_size/1.7;
  mid_pulltie_hole1_x =  pulltie_inset;
  mid_pulltie_hole1_z =  mid_hook_z + bar_diameter + overhangPlusExtend + hookExtend_mid + hookOverhang_mid;
  mid_pulltie_hole2_x =  pulltie_inset;
  mid_pulltie_hole2_z =  block_z - Vertical_Spacing_Hooks ;

  // hook and plate structure
  //translate([0, block_y - plate_thickness, 0]) {
  translate([0, 0 + 1.2, 0]) {

    //top hooks
    translate([0, 0, block_z]) {

      translate([0,0,0])
        barHook ( diameter = bar_diameter, hook_width = hookWidth, hook_thickness = hookThickness, hook_overhang = hookOverhang,
                  hook_extend = hookExtend, inner_padding = innerPadding );

      translate([block_x - hookWidth,0,0])
        barHook ( diameter = bar_diameter, hook_width = hookWidth, hook_thickness = hookThickness, hook_overhang = hookOverhang,
                  hook_extend = hookExtend, inner_padding = innerPadding );
    }

    // mid hooks
    translate([0, 0, mid_hook_z]) {

      // Cannot use as-is since the bar curves around the corner. So do not instantiate
      *translate([0,0,0])
        barHook ( diameter = bar_diameter, hook_width = hookWidth, hook_thickness = hookThickness, hook_overhang = hookOverhang_mid,
                  hook_extend = 0, inner_padding = innerPadding );

      // right
      translate([block_x - hookWidth,0,0])
        barHook ( diameter = bar_diameter, hook_width = hookWidth, hook_thickness = hookThickness, hook_overhang = hookOverhang_mid,
                  hook_extend = 0, inner_padding = innerPadding );
    }

    // extend hooks
    translate([0, 0, 0]) {

      difference () {
        union () {

          translate([0,0,0])
            linear_extrude(height = block_z, center = false, convexity = 10)
            complexRoundSquare([hookWidth, plate_thickness],
                               [0,0], [0,0], [0,0], [0,0], center = false);

          translate([block_x - hookWidth,0,0])
            linear_extrude(height = block_z, center = false, convexity = 10)
            complexRoundSquare([hookWidth, plate_thickness],
                               [0,0], [0,0], [0,0], [0,0], center = false);
        }

        // 3. punch out holes for pull-ties
        translate([mid_pulltie_hole1_x, -e, mid_pulltie_hole1_z]) {
          linear_extrude(height = pulltie_hole_size + e, center = false, convexity = 10)
            square([pulltie_hole_width,  plate_thickness + 2*e]);
        }

        // punch out holes for pull-ties
        translate([mid_pulltie_hole2_x, -e, mid_pulltie_hole2_z]) {
          linear_extrude(height = pulltie_hole_size + e, center = false, convexity = 10)
            square([pulltie_hole_width,  plate_thickness + 2*e]);
        }

        // punch out holes for pull-ties
        translate([block_x - mid_pulltie_hole1_x - pulltie_hole_width, -e, mid_pulltie_hole1_z]) {
          linear_extrude(height = pulltie_hole_size + e, center = false, convexity = 10)
            square([pulltie_hole_width,  plate_thickness + 2*e]);
        }

        // punch out holes for pull-ties
        translate([block_x - mid_pulltie_hole2_x - pulltie_hole_width, -e, mid_pulltie_hole2_z - (hookExtend_mid + hookOverhang_mid)]) {
          linear_extrude(height = pulltie_hole_size + e, center = false, convexity = 10)
            square([pulltie_hole_width,  plate_thickness + 2*e]);
        }
      }
    }

    // build plate
    translate([0, 0, plate_start_height]) {

      difference () {
        union () {
          // left
          translate([hookWidth-e,0,0])
            linear_extrude(height = block_z - plate_start_height, center = false, convexity = 10)
            complexRoundSquare([plate_width_half, plate_thickness],
                               [0,0], [0,0], [0,0], [0,0], center = false);

          // right
          translate([block_x - hookWidth - plate_width_half-e,0,0])
            linear_extrude(height = block_z - plate_start_height, center = false, convexity = 10)
            complexRoundSquare([plate_width_half + 2*e, plate_thickness],
                               [0,0], [0,0], [0,0], [0,0], center = false);

          // bottom
          if (include_bottom_plate) {
            //
            translate([hookWidth + plate_width_half - 1*e,0,0])
              linear_extrude(height = bottom_height + e, center = false, convexity = 10)
              complexRoundSquare([surround_w + 2*e, plate_thickness],
                                 [0,0], [0,0], [0,0], [0,0], center = false);
          }
        }
      }

    }
  }

}


module test_basketMount(fit_better) {
  mountInsertWidth = 22;
  mountInsertThickness = 3*2;
  mountInsertHeight = 42;

  fitBetter = fit_better;

  translate([0, 0, 0])
    basketMount(mountInsertWidth, mountInsertThickness, mountInsertHeight, fitBetter);
}


module test_sleeveMountInsert (fit_better = true, translate_x = 0) {
  mountInsertWidth = 22;
  mountInsertThickness = 3*2;
  mountInsertHeight = 42;

  fitBetter = fit_better;

  translate([translate_x, 0, 0])
    sleeveMountInsert(mountInsertWidth, mountInsertThickness, mountInsertHeight, fitBetter);
}

module barHook (diameter = 10.6, hook_width = 12.7, hook_thickness = 3.5, hook_overhang = 4, hook_extend = 0, inner_padding = 0.6) {

  d_inside = diameter;

  thickness = hook_thickness;
  pad_inner = inner_padding;
  catch_overhang = hook_overhang;
  extend = hook_extend;

  r_outer = 3.5;
  r_inner = 2.5;


  // derived
  hook_overlap = d_inside + catch_overhang + thickness;
  hook_length = hook_overlap + extend;

  hook_stop = extend;

  hook_outside = diameter + 2*thickness + 2*pad_inner;
  hook_inside = diameter + 2*pad_inner;

  t_y = hook_outside;

  translate([0, t_y, 0])
  rotate([0,-90,180])
  linear_extrude(height = hook_width)
  difference() {
    complexRoundSquare([hook_length, hook_outside],
                       [0,0], [r_outer,r_outer],  [r_outer,r_outer], [0,0], center = false);
    union() {
      // cut off extend
      translate([-e, -e, 0])
        complexRoundSquare([hook_stop + 2*e, hook_outside - thickness],
                           [0,0], [0,0], [0,0], [0,0], center = false);
      // hook interior
      translate([hook_stop, thickness, 0])
        complexRoundSquare([hook_overlap - thickness, hook_inside],
                           [0,0], [r_inner,r_inner], [r_inner,r_inner], [0,0], center = false);
    }
  }
}


module test_barHook () {
  bar_diameter = 10.6;
  hookWidth = 12.7;
  hookThickness = 3.5;
  hookOverhang = 2.5;
  hookExtend = 4;
  innerPadding = 0.6;

  barHook ( diameter = bar_diameter, hook_width = hookWidth, hook_thickness = hookThickness, hook_overhang = hookOverhang,
            hook_extend = hookExtend, inner_padding = innerPadding );
}

CONTROL_OUTPUT_basketMount = true;

$fn = 100;

tweakMountSurface = true;

if (CONTROL_OUTPUT_basketMount) {
  // translate([-90,0,39])
  test_basketMount(tweakMountSurface);

  *test_barHook();

 }
